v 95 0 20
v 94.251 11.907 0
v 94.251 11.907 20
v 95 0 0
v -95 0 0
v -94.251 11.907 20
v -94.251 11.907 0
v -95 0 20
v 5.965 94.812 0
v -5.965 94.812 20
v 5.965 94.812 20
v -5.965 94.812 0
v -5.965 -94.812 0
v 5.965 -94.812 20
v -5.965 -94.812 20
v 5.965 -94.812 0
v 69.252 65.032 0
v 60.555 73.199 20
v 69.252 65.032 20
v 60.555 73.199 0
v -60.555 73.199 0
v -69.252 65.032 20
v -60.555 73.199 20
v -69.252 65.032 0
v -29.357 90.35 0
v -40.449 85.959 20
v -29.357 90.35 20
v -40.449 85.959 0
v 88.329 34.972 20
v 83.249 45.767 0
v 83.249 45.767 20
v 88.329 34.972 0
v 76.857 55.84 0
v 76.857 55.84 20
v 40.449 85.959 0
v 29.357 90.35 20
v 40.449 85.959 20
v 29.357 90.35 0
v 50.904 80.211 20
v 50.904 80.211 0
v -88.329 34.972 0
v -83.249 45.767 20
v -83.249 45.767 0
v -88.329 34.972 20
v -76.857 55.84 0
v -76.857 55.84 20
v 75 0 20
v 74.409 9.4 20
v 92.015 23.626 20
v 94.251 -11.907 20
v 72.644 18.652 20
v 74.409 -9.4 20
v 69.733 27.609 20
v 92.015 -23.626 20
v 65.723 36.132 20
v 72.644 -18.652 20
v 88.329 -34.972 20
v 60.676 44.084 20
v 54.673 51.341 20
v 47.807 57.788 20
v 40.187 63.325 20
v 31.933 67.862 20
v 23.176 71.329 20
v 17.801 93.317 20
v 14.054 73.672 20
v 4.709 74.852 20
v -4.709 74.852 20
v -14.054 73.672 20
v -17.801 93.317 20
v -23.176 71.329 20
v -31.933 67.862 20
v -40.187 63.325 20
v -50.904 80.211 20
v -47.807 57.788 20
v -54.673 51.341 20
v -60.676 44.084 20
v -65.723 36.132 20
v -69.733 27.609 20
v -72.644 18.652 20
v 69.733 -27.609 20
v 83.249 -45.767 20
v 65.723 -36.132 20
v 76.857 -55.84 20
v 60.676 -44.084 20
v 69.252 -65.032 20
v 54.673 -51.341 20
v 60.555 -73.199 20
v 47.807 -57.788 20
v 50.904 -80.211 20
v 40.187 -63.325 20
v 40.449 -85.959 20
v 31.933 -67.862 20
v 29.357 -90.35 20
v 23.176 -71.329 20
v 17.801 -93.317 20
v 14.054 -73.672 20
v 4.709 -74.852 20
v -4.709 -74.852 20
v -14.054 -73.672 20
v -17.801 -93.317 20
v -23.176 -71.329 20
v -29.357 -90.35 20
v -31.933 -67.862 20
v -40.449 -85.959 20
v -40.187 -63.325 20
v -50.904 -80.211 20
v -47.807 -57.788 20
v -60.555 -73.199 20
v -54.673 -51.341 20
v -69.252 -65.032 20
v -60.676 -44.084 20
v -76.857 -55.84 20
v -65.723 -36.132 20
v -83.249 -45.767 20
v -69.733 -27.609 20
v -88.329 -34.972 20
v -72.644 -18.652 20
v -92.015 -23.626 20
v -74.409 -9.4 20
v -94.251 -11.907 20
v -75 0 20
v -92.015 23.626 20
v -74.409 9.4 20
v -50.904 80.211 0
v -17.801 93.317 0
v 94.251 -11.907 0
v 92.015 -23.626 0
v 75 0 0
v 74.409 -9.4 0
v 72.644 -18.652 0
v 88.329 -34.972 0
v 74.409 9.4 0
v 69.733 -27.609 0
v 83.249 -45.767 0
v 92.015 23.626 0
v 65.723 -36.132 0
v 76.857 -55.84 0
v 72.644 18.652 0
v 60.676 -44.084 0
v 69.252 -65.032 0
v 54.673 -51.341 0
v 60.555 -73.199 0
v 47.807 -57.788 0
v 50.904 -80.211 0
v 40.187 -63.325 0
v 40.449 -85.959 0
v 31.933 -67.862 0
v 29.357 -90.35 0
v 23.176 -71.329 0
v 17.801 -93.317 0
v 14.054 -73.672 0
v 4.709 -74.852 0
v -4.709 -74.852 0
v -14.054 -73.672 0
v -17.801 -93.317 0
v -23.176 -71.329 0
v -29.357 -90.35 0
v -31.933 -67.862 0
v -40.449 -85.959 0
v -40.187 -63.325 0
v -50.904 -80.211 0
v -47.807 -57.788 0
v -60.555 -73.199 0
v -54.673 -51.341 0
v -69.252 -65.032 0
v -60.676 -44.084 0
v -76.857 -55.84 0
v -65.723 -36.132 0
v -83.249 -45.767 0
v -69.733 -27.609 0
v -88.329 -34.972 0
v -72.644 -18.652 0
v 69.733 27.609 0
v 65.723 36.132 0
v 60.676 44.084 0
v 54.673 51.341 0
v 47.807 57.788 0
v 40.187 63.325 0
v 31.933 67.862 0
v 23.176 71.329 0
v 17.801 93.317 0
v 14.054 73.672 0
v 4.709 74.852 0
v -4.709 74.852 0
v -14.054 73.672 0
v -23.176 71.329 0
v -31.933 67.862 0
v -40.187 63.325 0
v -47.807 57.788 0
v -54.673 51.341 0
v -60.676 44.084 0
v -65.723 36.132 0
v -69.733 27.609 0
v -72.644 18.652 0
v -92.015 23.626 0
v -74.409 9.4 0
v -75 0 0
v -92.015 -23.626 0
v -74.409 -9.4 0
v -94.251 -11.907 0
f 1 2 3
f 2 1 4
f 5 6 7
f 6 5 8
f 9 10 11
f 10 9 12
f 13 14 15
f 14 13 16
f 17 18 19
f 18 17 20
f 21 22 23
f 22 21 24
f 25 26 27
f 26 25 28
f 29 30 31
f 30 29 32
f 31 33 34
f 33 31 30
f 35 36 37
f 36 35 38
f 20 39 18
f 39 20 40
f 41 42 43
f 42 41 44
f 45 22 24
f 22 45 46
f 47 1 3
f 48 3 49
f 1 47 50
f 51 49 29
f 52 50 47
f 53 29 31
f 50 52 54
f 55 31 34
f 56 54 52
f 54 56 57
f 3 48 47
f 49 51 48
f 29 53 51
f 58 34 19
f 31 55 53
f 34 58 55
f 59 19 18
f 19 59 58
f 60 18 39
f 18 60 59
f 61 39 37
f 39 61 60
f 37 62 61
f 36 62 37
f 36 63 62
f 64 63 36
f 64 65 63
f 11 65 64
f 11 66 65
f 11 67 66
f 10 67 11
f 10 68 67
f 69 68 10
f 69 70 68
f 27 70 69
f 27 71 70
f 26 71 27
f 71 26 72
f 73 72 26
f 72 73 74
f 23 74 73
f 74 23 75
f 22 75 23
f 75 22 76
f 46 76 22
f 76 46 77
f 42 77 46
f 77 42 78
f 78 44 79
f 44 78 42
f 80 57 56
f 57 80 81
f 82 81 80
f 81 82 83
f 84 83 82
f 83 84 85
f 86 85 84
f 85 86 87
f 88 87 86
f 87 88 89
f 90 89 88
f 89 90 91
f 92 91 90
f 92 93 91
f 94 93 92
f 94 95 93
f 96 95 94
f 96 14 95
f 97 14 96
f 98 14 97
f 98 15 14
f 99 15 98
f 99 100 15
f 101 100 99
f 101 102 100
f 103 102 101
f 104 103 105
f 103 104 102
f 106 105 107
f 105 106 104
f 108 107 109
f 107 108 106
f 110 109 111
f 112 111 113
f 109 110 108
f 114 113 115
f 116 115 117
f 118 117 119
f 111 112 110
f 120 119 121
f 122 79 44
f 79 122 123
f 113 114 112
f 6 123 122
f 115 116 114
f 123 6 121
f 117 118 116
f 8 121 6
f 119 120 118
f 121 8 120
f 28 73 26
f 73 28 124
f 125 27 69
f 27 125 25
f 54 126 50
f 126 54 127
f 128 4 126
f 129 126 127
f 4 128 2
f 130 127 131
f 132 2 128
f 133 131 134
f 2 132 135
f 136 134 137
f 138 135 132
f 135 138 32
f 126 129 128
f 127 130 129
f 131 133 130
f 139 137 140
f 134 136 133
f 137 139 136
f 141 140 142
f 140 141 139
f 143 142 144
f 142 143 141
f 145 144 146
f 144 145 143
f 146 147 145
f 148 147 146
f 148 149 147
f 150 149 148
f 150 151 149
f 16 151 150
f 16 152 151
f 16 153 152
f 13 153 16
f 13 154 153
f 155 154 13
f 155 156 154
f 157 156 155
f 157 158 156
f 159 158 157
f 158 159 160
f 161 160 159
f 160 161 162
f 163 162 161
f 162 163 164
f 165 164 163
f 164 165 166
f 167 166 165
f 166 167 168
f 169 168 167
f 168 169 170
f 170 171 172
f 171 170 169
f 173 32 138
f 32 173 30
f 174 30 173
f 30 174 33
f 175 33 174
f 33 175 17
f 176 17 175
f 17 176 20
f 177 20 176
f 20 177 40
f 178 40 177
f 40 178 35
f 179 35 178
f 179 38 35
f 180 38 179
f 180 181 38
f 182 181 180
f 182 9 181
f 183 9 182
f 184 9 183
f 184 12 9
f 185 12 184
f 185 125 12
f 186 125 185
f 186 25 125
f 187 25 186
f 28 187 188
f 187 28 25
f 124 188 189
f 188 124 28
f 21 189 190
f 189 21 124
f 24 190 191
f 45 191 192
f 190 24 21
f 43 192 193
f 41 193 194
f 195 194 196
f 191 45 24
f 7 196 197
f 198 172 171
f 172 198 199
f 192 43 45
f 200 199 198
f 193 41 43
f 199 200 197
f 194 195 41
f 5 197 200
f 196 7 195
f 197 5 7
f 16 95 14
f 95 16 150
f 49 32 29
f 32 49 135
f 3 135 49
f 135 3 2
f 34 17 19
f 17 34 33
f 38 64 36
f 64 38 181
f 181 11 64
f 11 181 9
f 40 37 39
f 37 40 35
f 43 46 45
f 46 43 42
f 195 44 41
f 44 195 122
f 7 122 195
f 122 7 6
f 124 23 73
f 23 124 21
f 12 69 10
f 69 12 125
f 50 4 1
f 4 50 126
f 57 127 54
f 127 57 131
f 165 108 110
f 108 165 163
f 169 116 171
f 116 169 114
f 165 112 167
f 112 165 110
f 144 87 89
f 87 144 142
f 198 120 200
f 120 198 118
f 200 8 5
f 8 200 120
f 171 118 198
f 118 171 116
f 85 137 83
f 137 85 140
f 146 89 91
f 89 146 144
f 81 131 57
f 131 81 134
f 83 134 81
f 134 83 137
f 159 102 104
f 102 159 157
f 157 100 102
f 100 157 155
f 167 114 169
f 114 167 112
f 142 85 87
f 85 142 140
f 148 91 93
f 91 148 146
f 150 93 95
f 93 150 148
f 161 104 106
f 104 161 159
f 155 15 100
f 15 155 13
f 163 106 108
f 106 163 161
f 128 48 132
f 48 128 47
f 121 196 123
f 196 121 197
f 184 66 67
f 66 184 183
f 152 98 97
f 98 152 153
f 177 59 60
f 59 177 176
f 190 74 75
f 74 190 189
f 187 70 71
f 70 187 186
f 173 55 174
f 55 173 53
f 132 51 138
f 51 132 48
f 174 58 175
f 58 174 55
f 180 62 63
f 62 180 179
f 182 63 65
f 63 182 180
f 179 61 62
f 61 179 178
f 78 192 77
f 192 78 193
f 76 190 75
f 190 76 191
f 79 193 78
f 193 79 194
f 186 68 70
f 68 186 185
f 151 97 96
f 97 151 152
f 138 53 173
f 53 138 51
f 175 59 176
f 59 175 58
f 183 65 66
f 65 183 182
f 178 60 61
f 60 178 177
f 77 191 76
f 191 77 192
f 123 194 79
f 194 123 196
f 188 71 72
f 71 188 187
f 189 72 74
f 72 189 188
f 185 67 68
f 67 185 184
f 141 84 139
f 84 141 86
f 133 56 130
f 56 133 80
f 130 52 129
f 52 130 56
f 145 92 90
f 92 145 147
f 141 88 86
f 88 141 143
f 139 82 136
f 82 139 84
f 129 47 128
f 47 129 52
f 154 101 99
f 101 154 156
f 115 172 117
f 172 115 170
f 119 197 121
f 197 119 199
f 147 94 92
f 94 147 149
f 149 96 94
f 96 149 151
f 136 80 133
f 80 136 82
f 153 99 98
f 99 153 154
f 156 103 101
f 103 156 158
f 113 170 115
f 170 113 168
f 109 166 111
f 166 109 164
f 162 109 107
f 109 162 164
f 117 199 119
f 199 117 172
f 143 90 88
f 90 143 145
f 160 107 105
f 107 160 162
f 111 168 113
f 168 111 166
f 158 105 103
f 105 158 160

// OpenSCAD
$fn = 50;


difference() {
	union() {
		translate(v = [0, 0, 0]) {
			rotate(a = [0, 0, 0]) {
				cylinder(h = 20, r = 95.0000000000);
			}
		}
	}
	union() {
		translate(v = [0, 0, 0]) {
			rotate(a = [0, 0, 0]) {
				cylinder(h = 20, r = 75.0000000000);
			}
		}
	}
}
